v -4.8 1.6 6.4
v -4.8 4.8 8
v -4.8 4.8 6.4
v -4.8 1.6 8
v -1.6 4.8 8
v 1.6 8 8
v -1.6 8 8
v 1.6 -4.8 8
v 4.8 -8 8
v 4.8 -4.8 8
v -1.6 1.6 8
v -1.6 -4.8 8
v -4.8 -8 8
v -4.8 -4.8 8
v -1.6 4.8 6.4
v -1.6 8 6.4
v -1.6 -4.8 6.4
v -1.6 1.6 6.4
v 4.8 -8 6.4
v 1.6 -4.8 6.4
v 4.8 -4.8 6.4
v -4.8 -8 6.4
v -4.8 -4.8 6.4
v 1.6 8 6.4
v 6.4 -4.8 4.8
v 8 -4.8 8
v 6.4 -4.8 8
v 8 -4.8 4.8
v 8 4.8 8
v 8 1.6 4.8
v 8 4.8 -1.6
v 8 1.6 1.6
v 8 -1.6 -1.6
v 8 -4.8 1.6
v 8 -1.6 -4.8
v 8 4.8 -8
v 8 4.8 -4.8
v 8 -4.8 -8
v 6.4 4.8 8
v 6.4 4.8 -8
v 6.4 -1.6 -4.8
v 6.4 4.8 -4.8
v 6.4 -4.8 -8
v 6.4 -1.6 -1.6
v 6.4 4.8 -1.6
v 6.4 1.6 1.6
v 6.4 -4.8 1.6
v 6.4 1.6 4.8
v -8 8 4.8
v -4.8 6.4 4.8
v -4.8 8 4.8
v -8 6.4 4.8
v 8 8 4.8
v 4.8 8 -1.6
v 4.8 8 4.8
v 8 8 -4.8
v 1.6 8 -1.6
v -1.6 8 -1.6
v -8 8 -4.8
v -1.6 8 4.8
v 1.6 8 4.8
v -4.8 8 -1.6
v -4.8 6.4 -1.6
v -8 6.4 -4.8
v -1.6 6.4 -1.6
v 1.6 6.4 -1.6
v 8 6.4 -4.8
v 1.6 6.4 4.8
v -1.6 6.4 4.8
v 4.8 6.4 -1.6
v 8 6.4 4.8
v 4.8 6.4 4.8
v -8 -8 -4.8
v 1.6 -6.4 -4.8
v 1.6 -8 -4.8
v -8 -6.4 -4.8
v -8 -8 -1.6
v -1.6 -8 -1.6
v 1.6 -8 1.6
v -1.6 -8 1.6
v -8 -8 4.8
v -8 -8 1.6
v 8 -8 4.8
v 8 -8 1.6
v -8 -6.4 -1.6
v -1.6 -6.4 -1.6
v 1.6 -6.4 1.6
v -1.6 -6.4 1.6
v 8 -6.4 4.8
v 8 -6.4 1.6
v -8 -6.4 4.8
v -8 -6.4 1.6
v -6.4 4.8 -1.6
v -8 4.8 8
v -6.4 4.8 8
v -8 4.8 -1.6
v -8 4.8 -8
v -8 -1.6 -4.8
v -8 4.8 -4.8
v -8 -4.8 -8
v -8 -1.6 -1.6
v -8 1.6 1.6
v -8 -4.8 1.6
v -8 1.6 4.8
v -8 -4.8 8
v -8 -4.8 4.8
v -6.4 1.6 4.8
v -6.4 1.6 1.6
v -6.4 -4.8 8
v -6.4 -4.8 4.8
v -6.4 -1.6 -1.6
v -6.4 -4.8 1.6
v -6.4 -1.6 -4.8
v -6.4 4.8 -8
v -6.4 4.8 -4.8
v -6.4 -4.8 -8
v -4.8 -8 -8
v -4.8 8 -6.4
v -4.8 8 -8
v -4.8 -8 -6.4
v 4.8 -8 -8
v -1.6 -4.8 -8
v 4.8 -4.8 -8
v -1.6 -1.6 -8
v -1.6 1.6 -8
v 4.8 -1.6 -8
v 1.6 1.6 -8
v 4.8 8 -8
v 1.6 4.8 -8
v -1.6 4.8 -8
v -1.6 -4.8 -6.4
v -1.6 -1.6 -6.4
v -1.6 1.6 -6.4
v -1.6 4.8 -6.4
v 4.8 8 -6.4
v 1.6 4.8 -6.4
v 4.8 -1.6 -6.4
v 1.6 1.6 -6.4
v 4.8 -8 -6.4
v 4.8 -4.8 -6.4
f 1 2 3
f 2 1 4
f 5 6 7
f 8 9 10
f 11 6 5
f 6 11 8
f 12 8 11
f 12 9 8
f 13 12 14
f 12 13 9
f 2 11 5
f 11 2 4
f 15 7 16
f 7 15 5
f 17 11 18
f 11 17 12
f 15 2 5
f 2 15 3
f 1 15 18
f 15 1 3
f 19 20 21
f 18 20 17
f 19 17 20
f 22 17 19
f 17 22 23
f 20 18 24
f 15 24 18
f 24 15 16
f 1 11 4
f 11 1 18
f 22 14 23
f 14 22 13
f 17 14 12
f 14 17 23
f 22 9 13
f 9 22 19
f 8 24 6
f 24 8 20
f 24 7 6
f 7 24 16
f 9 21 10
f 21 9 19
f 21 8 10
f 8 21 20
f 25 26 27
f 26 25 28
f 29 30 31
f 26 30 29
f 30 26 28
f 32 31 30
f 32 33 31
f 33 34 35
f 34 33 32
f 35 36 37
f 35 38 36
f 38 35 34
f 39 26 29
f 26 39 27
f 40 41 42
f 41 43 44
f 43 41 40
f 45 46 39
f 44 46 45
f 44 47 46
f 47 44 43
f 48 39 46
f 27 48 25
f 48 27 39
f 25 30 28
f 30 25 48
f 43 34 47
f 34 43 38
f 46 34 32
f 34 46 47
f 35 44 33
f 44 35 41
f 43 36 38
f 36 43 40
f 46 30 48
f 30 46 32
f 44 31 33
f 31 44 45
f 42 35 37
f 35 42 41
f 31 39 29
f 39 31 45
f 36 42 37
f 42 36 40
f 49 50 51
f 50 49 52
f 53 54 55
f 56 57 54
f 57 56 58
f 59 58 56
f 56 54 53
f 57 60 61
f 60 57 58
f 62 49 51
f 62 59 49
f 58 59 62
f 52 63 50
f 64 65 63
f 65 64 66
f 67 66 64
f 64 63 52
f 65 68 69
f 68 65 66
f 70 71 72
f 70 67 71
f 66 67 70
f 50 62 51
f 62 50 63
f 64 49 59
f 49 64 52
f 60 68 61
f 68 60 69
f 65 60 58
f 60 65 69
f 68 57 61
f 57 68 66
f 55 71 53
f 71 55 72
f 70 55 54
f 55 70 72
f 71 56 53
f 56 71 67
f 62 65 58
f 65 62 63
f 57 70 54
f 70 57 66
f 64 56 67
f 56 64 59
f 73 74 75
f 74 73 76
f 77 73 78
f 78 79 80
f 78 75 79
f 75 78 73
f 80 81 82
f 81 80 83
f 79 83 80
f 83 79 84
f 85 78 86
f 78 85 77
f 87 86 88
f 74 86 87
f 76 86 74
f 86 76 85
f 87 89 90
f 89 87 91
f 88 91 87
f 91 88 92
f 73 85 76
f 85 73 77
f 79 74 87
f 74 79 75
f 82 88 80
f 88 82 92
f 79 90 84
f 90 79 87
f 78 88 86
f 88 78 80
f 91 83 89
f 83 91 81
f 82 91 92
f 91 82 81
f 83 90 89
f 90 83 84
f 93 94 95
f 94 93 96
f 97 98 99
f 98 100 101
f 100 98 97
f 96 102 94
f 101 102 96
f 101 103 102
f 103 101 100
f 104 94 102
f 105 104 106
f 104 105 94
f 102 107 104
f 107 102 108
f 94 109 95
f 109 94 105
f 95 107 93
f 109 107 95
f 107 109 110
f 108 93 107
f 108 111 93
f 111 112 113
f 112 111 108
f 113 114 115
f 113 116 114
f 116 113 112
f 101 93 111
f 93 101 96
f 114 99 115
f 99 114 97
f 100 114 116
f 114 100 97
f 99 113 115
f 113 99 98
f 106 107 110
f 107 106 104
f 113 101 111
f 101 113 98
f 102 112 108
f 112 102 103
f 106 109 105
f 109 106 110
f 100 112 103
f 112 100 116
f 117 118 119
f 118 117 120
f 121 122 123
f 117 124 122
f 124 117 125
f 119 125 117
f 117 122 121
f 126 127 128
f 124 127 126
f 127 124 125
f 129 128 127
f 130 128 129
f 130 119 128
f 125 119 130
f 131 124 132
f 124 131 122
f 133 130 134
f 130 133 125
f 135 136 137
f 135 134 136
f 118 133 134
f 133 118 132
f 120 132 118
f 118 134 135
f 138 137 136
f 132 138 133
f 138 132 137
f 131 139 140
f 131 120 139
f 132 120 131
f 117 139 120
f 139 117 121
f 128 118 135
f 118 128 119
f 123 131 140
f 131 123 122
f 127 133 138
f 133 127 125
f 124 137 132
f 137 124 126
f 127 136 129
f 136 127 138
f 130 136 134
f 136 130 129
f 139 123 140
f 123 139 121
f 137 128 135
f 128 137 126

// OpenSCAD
// Generated by SolidPython 0.4.6 on 2020-05-11 15:22:11
$fa = .01;
$fs = 0.1;


union() {
	translate(v = [0, 0, 8.0000000000]) {
		rotate(a = [0, 0, 0]) {
			union() {
				translate(v = [-3.2000000000, 3.2000000000, 0]) {
					translate(v = [0, 0, -0.8000000000]) {
						cube(center = true, size = [3.2000000000, 3.2000000000, 1.6000000000]);
					}
				}
				translate(v = [-3.2000000000, -6.4000000000, 0]) {
					translate(v = [0, 0, -0.8000000000]) {
						cube(center = true, size = [3.2000000000, 3.2000000000, 1.6000000000]);
					}
				}
				translate(v = [0.0000000000, 6.4000000000, 0]) {
					translate(v = [0, 0, -0.8000000000]) {
						cube(center = true, size = [3.2000000000, 3.2000000000, 1.6000000000]);
					}
				}
				translate(v = [0.0000000000, 3.2000000000, 0]) {
					translate(v = [0, 0, -0.8000000000]) {
						cube(center = true, size = [3.2000000000, 3.2000000000, 1.6000000000]);
					}
				}
				translate(v = [0.0000000000, 0.0000000000, 0]) {
					translate(v = [0, 0, -0.8000000000]) {
						cube(center = true, size = [3.2000000000, 3.2000000000, 1.6000000000]);
					}
				}
				translate(v = [0.0000000000, -3.2000000000, 0]) {
					translate(v = [0, 0, -0.8000000000]) {
						cube(center = true, size = [3.2000000000, 3.2000000000, 1.6000000000]);
					}
				}
				translate(v = [0.0000000000, -6.4000000000, 0]) {
					translate(v = [0, 0, -0.8000000000]) {
						cube(center = true, size = [3.2000000000, 3.2000000000, 1.6000000000]);
					}
				}
				translate(v = [3.2000000000, -6.4000000000, 0]) {
					translate(v = [0, 0, -0.8000000000]) {
						cube(center = true, size = [3.2000000000, 3.2000000000, 1.6000000000]);
					}
				}
			}
		}
	}
	translate(v = [8.0000000000, 0, 0]) {
		rotate(a = [90, 0, 90]) {
			union() {
				translate(v = [-3.2000000000, 6.4000000000, 0]) {
					translate(v = [0, 0, -0.8000000000]) {
						cube(center = true, size = [3.2000000000, 3.2000000000, 1.6000000000]);
					}
				}
				translate(v = [-3.2000000000, 0.0000000000, 0]) {
					translate(v = [0, 0, -0.8000000000]) {
						cube(center = true, size = [3.2000000000, 3.2000000000, 1.6000000000]);
					}
				}
				translate(v = [-3.2000000000, -3.2000000000, 0]) {
					translate(v = [0, 0, -0.8000000000]) {
						cube(center = true, size = [3.2000000000, 3.2000000000, 1.6000000000]);
					}
				}
				translate(v = [-3.2000000000, -6.4000000000, 0]) {
					translate(v = [0, 0, -0.8000000000]) {
						cube(center = true, size = [3.2000000000, 3.2000000000, 1.6000000000]);
					}
				}
				translate(v = [0.0000000000, 6.4000000000, 0]) {
					translate(v = [0, 0, -0.8000000000]) {
						cube(center = true, size = [3.2000000000, 3.2000000000, 1.6000000000]);
					}
				}
				translate(v = [0.0000000000, 0.0000000000, 0]) {
					translate(v = [0, 0, -0.8000000000]) {
						cube(center = true, size = [3.2000000000, 3.2000000000, 1.6000000000]);
					}
				}
				translate(v = [0.0000000000, -6.4000000000, 0]) {
					translate(v = [0, 0, -0.8000000000]) {
						cube(center = true, size = [3.2000000000, 3.2000000000, 1.6000000000]);
					}
				}
				translate(v = [3.2000000000, 6.4000000000, 0]) {
					translate(v = [0, 0, -0.8000000000]) {
						cube(center = true, size = [3.2000000000, 3.2000000000, 1.6000000000]);
					}
				}
				translate(v = [3.2000000000, 3.2000000000, 0]) {
					translate(v = [0, 0, -0.8000000000]) {
						cube(center = true, size = [3.2000000000, 3.2000000000, 1.6000000000]);
					}
				}
				translate(v = [3.2000000000, 0.0000000000, 0]) {
					translate(v = [0, 0, -0.8000000000]) {
						cube(center = true, size = [3.2000000000, 3.2000000000, 1.6000000000]);
					}
				}
				translate(v = [3.2000000000, -6.4000000000, 0]) {
					translate(v = [0, 0, -0.8000000000]) {
						cube(center = true, size = [3.2000000000, 3.2000000000, 1.6000000000]);
					}
				}
			}
		}
	}
	translate(v = [0, 8.0000000000, 0]) {
		rotate(a = [-90, 90, 0]) {
			union() {
				translate(v = [-3.2000000000, 6.4000000000, 0]) {
					translate(v = [0, 0, -0.8000000000]) {
						cube(center = true, size = [3.2000000000, 3.2000000000, 1.6000000000]);
					}
				}
				translate(v = [-3.2000000000, 0.0000000000, 0]) {
					translate(v = [0, 0, -0.8000000000]) {
						cube(center = true, size = [3.2000000000, 3.2000000000, 1.6000000000]);
					}
				}
				translate(v = [-3.2000000000, -6.4000000000, 0]) {
					translate(v = [0, 0, -0.8000000000]) {
						cube(center = true, size = [3.2000000000, 3.2000000000, 1.6000000000]);
					}
				}
				translate(v = [0.0000000000, 6.4000000000, 0]) {
					translate(v = [0, 0, -0.8000000000]) {
						cube(center = true, size = [3.2000000000, 3.2000000000, 1.6000000000]);
					}
				}
				translate(v = [0.0000000000, 0.0000000000, 0]) {
					translate(v = [0, 0, -0.8000000000]) {
						cube(center = true, size = [3.2000000000, 3.2000000000, 1.6000000000]);
					}
				}
				translate(v = [0.0000000000, -6.4000000000, 0]) {
					translate(v = [0, 0, -0.8000000000]) {
						cube(center = true, size = [3.2000000000, 3.2000000000, 1.6000000000]);
					}
				}
				translate(v = [3.2000000000, 6.4000000000, 0]) {
					translate(v = [0, 0, -0.8000000000]) {
						cube(center = true, size = [3.2000000000, 3.2000000000, 1.6000000000]);
					}
				}
				translate(v = [3.2000000000, 3.2000000000, 0]) {
					translate(v = [0, 0, -0.8000000000]) {
						cube(center = true, size = [3.2000000000, 3.2000000000, 1.6000000000]);
					}
				}
				translate(v = [3.2000000000, 0.0000000000, 0]) {
					translate(v = [0, 0, -0.8000000000]) {
						cube(center = true, size = [3.2000000000, 3.2000000000, 1.6000000000]);
					}
				}
				translate(v = [3.2000000000, -3.2000000000, 0]) {
					translate(v = [0, 0, -0.8000000000]) {
						cube(center = true, size = [3.2000000000, 3.2000000000, 1.6000000000]);
					}
				}
				translate(v = [3.2000000000, -6.4000000000, 0]) {
					translate(v = [0, 0, -0.8000000000]) {
						cube(center = true, size = [3.2000000000, 3.2000000000, 1.6000000000]);
					}
				}
			}
		}
	}
	translate(v = [0, -8.0000000000, 0]) {
		rotate(a = [90, -90, 0]) {
			union() {
				translate(v = [-3.2000000000, 6.4000000000, 0]) {
					translate(v = [0, 0, -0.8000000000]) {
						cube(center = true, size = [3.2000000000, 3.2000000000, 1.6000000000]);
					}
				}
				translate(v = [-3.2000000000, 3.2000000000, 0]) {
					translate(v = [0, 0, -0.8000000000]) {
						cube(center = true, size = [3.2000000000, 3.2000000000, 1.6000000000]);
					}
				}
				translate(v = [-3.2000000000, 0.0000000000, 0]) {
					translate(v = [0, 0, -0.8000000000]) {
						cube(center = true, size = [3.2000000000, 3.2000000000, 1.6000000000]);
					}
				}
				translate(v = [0.0000000000, 0.0000000000, 0]) {
					translate(v = [0, 0, -0.8000000000]) {
						cube(center = true, size = [3.2000000000, 3.2000000000, 1.6000000000]);
					}
				}
				translate(v = [3.2000000000, 6.4000000000, 0]) {
					translate(v = [0, 0, -0.8000000000]) {
						cube(center = true, size = [3.2000000000, 3.2000000000, 1.6000000000]);
					}
				}
				translate(v = [3.2000000000, 3.2000000000, 0]) {
					translate(v = [0, 0, -0.8000000000]) {
						cube(center = true, size = [3.2000000000, 3.2000000000, 1.6000000000]);
					}
				}
				translate(v = [3.2000000000, 0.0000000000, 0]) {
					translate(v = [0, 0, -0.8000000000]) {
						cube(center = true, size = [3.2000000000, 3.2000000000, 1.6000000000]);
					}
				}
				translate(v = [3.2000000000, -3.2000000000, 0]) {
					translate(v = [0, 0, -0.8000000000]) {
						cube(center = true, size = [3.2000000000, 3.2000000000, 1.6000000000]);
					}
				}
				translate(v = [3.2000000000, -6.4000000000, 0]) {
					translate(v = [0, 0, -0.8000000000]) {
						cube(center = true, size = [3.2000000000, 3.2000000000, 1.6000000000]);
					}
				}
			}
		}
	}
	translate(v = [-8.0000000000, 0, 0]) {
		rotate(a = [90, 0, -90]) {
			union() {
				translate(v = [-3.2000000000, 6.4000000000, 0]) {
					translate(v = [0, 0, -0.8000000000]) {
						cube(center = true, size = [3.2000000000, 3.2000000000, 1.6000000000]);
					}
				}
				translate(v = [-3.2000000000, 3.2000000000, 0]) {
					translate(v = [0, 0, -0.8000000000]) {
						cube(center = true, size = [3.2000000000, 3.2000000000, 1.6000000000]);
					}
				}
				translate(v = [-3.2000000000, 0.0000000000, 0]) {
					translate(v = [0, 0, -0.8000000000]) {
						cube(center = true, size = [3.2000000000, 3.2000000000, 1.6000000000]);
					}
				}
				translate(v = [-3.2000000000, -6.4000000000, 0]) {
					translate(v = [0, 0, -0.8000000000]) {
						cube(center = true, size = [3.2000000000, 3.2000000000, 1.6000000000]);
					}
				}
				translate(v = [0.0000000000, 6.4000000000, 0]) {
					translate(v = [0, 0, -0.8000000000]) {
						cube(center = true, size = [3.2000000000, 3.2000000000, 1.6000000000]);
					}
				}
				translate(v = [0.0000000000, 0.0000000000, 0]) {
					translate(v = [0, 0, -0.8000000000]) {
						cube(center = true, size = [3.2000000000, 3.2000000000, 1.6000000000]);
					}
				}
				translate(v = [0.0000000000, -6.4000000000, 0]) {
					translate(v = [0, 0, -0.8000000000]) {
						cube(center = true, size = [3.2000000000, 3.2000000000, 1.6000000000]);
					}
				}
				translate(v = [3.2000000000, 6.4000000000, 0]) {
					translate(v = [0, 0, -0.8000000000]) {
						cube(center = true, size = [3.2000000000, 3.2000000000, 1.6000000000]);
					}
				}
				translate(v = [3.2000000000, 0.0000000000, 0]) {
					translate(v = [0, 0, -0.8000000000]) {
						cube(center = true, size = [3.2000000000, 3.2000000000, 1.6000000000]);
					}
				}
				translate(v = [3.2000000000, -3.2000000000, 0]) {
					translate(v = [0, 0, -0.8000000000]) {
						cube(center = true, size = [3.2000000000, 3.2000000000, 1.6000000000]);
					}
				}
				translate(v = [3.2000000000, -6.4000000000, 0]) {
					translate(v = [0, 0, -0.8000000000]) {
						cube(center = true, size = [3.2000000000, 3.2000000000, 1.6000000000]);
					}
				}
			}
		}
	}
	translate(v = [0, 0, -8.0000000000]) {
		rotate(a = [180, 0, 0]) {
			union() {
				translate(v = [-3.2000000000, 6.4000000000, 0]) {
					translate(v = [0, 0, -0.8000000000]) {
						cube(center = true, size = [3.2000000000, 3.2000000000, 1.6000000000]);
					}
				}
				translate(v = [-3.2000000000, 3.2000000000, 0]) {
					translate(v = [0, 0, -0.8000000000]) {
						cube(center = true, size = [3.2000000000, 3.2000000000, 1.6000000000]);
					}
				}
				translate(v = [-3.2000000000, 0.0000000000, 0]) {
					translate(v = [0, 0, -0.8000000000]) {
						cube(center = true, size = [3.2000000000, 3.2000000000, 1.6000000000]);
					}
				}
				translate(v = [-3.2000000000, -3.2000000000, 0]) {
					translate(v = [0, 0, -0.8000000000]) {
						cube(center = true, size = [3.2000000000, 3.2000000000, 1.6000000000]);
					}
				}
				translate(v = [-3.2000000000, -6.4000000000, 0]) {
					translate(v = [0, 0, -0.8000000000]) {
						cube(center = true, size = [3.2000000000, 3.2000000000, 1.6000000000]);
					}
				}
				translate(v = [0.0000000000, 6.4000000000, 0]) {
					translate(v = [0, 0, -0.8000000000]) {
						cube(center = true, size = [3.2000000000, 3.2000000000, 1.6000000000]);
					}
				}
				translate(v = [0.0000000000, 0.0000000000, 0]) {
					translate(v = [0, 0, -0.8000000000]) {
						cube(center = true, size = [3.2000000000, 3.2000000000, 1.6000000000]);
					}
				}
				translate(v = [0.0000000000, -6.4000000000, 0]) {
					translate(v = [0, 0, -0.8000000000]) {
						cube(center = true, size = [3.2000000000, 3.2000000000, 1.6000000000]);
					}
				}
				translate(v = [3.2000000000, 6.4000000000, 0]) {
					translate(v = [0, 0, -0.8000000000]) {
						cube(center = true, size = [3.2000000000, 3.2000000000, 1.6000000000]);
					}
				}
				translate(v = [3.2000000000, 0.0000000000, 0]) {
					translate(v = [0, 0, -0.8000000000]) {
						cube(center = true, size = [3.2000000000, 3.2000000000, 1.6000000000]);
					}
				}
				translate(v = [3.2000000000, -3.2000000000, 0]) {
					translate(v = [0, 0, -0.8000000000]) {
						cube(center = true, size = [3.2000000000, 3.2000000000, 1.6000000000]);
					}
				}
				translate(v = [3.2000000000, -6.4000000000, 0]) {
					translate(v = [0, 0, -0.8000000000]) {
						cube(center = true, size = [3.2000000000, 3.2000000000, 1.6000000000]);
					}
				}
			}
		}
	}
}
/***********************************************
*********      SolidPython code:      **********
************************************************
 
import os
from os.path import join as path_join
from typing import Iterable

from solid import *
from solid.utils import *


def line(
        a: Tuple[float, float, float],
        b: Tuple[float, float, float],
        r: float = 1.0,
        capped=True,
):
    if capped:
        return hull()(translate(a)(sphere(r=r)), translate(b)(sphere(r=r)))
    else:
        return hull()(
            hull()(translate(a)(sphere(r=r)), translate(b)(sphere(r=r)))
            - translate(a)(sphere(r=r))
            - translate(b)(sphere(r=r))
        )


def mix(p1: Tuple[float, float, float], p2: Tuple[float, float, float], a: float):
    if len(p1) != len(p2):
        raise IndexError()
    return tuple((x * (1 - a)) + (y * a) for x, y in zip(p1, p2))


def pairwise_hull(objs: Iterable[OpenSCADObject]):
    return sum(hull()(a, b) for a, b in zip(objs, objs[1:]))


def generate_part(part, partname, resolution=0.1):
    if not os.path.exists("generated"):
        os.makedirs("generated")
    scad_render_to_file(
        part,
        path_join("generated", f"{partname}.scad"),
        file_header=f"$fa = .01;\n$fs = {resolution};\n",
    )


standard_pips = (
    (
        (0, 0),
    ),
    (
        (-1, -1),
        (1, 1),
    ),
    (
        (-1, -1),
        (0, 0),
        (1, 1),
    ),
    (
        (-1, -1),
        (-1, 1),
        (1, -1),
        (1, 1),
    ),
    (
        (-1, -1),
        (-1, 1),
        (0, 0),
        (1, -1),
        (1, 1),
    ),
    (
        (-1, -1),
        (-1, 0),
        (-1, 1),
        (1, -1),
        (1, 0),
        (1, 1),
    ),
)

PHI = (1 + 5**.5)/2

phi = 1/PHI

def torus(major_r, minor_r, resolution):
    return rotate_extrude()(translate((major_r, 0, 0))(circle(minor_r)))


__all__ = ["line", "mix", "pairwise_hull", "generate_part", "standard_pips", "torus", "PHI", "phi"]
 
 
************************************************/
